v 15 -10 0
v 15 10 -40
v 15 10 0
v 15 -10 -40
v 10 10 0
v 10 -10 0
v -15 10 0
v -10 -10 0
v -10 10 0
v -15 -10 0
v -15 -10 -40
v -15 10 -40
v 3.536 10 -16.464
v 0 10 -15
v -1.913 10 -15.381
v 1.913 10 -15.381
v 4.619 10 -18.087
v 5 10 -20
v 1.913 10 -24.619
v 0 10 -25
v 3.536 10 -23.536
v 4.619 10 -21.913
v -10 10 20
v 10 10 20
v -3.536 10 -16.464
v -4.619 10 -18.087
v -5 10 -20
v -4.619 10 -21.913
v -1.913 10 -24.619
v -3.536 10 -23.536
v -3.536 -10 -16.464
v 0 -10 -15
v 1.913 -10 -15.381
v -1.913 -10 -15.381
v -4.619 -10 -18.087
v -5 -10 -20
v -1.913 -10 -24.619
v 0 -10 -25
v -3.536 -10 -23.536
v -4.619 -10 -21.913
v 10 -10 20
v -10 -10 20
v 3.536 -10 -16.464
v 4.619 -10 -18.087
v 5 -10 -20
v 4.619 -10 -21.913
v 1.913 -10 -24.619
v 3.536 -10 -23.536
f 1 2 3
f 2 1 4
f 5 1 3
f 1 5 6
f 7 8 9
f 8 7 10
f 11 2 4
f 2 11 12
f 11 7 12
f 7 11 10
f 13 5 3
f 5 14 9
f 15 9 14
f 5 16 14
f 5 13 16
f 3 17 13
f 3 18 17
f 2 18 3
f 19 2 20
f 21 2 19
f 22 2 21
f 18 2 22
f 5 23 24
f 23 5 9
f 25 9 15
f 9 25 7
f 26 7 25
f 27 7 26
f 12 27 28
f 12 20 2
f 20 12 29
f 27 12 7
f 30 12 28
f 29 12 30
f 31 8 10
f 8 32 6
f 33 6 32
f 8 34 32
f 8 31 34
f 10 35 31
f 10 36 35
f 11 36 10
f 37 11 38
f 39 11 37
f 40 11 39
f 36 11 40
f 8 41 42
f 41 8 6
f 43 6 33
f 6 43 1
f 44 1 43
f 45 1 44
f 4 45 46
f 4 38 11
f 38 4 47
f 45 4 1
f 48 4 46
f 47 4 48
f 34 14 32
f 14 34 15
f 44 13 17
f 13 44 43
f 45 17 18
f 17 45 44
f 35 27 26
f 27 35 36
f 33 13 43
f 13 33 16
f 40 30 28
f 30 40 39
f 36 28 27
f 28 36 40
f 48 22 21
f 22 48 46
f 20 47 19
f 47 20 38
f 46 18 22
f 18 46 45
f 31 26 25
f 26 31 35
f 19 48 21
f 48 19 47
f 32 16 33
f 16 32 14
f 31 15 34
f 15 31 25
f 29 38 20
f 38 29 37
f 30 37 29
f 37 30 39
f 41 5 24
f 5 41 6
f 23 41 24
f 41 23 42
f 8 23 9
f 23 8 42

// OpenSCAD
// Define dimensions
cube_size = 20; // Size of the solid cube
block_width = 30; // Width of the rectangular block
block_height = 40; // Height of the rectangular block
block_depth = 20; // Depth of the rectangular block
hole_diameter = 10; // Diameter of the holes
hole_spacing = 15; // Distance between the centers of the holes

// Solid cube
module solid_cube() {
    cube([cube_size, cube_size, cube_size], center = true);
}

// Rectangular block with two holes
module rectangular_block_with_two_holes() {
    difference() {
        cube([block_width, block_depth, block_height], center = true);
        // Create the two holes
        translate([0, -block_depth / 2 + hole_spacing, 0])
            rotate([90, 0, 0])
            cylinder(h = block_width + 1, r = hole_diameter / 2, center = true);
        translate([0, block_depth / 2 - hole_spacing, 0])
            rotate([90, 0, 0])
            cylinder(h = block_width + 1, r = hole_diameter / 2, center = true);
    }
}

// Render the solid cube as a standalone component
translate([0, 0, cube_size / 2])
solid_cube();

// Render the rectangular block with two holes as a standalone component
translate([0, 0, -block_height / 2])
rectangular_block_with_two_holes();
